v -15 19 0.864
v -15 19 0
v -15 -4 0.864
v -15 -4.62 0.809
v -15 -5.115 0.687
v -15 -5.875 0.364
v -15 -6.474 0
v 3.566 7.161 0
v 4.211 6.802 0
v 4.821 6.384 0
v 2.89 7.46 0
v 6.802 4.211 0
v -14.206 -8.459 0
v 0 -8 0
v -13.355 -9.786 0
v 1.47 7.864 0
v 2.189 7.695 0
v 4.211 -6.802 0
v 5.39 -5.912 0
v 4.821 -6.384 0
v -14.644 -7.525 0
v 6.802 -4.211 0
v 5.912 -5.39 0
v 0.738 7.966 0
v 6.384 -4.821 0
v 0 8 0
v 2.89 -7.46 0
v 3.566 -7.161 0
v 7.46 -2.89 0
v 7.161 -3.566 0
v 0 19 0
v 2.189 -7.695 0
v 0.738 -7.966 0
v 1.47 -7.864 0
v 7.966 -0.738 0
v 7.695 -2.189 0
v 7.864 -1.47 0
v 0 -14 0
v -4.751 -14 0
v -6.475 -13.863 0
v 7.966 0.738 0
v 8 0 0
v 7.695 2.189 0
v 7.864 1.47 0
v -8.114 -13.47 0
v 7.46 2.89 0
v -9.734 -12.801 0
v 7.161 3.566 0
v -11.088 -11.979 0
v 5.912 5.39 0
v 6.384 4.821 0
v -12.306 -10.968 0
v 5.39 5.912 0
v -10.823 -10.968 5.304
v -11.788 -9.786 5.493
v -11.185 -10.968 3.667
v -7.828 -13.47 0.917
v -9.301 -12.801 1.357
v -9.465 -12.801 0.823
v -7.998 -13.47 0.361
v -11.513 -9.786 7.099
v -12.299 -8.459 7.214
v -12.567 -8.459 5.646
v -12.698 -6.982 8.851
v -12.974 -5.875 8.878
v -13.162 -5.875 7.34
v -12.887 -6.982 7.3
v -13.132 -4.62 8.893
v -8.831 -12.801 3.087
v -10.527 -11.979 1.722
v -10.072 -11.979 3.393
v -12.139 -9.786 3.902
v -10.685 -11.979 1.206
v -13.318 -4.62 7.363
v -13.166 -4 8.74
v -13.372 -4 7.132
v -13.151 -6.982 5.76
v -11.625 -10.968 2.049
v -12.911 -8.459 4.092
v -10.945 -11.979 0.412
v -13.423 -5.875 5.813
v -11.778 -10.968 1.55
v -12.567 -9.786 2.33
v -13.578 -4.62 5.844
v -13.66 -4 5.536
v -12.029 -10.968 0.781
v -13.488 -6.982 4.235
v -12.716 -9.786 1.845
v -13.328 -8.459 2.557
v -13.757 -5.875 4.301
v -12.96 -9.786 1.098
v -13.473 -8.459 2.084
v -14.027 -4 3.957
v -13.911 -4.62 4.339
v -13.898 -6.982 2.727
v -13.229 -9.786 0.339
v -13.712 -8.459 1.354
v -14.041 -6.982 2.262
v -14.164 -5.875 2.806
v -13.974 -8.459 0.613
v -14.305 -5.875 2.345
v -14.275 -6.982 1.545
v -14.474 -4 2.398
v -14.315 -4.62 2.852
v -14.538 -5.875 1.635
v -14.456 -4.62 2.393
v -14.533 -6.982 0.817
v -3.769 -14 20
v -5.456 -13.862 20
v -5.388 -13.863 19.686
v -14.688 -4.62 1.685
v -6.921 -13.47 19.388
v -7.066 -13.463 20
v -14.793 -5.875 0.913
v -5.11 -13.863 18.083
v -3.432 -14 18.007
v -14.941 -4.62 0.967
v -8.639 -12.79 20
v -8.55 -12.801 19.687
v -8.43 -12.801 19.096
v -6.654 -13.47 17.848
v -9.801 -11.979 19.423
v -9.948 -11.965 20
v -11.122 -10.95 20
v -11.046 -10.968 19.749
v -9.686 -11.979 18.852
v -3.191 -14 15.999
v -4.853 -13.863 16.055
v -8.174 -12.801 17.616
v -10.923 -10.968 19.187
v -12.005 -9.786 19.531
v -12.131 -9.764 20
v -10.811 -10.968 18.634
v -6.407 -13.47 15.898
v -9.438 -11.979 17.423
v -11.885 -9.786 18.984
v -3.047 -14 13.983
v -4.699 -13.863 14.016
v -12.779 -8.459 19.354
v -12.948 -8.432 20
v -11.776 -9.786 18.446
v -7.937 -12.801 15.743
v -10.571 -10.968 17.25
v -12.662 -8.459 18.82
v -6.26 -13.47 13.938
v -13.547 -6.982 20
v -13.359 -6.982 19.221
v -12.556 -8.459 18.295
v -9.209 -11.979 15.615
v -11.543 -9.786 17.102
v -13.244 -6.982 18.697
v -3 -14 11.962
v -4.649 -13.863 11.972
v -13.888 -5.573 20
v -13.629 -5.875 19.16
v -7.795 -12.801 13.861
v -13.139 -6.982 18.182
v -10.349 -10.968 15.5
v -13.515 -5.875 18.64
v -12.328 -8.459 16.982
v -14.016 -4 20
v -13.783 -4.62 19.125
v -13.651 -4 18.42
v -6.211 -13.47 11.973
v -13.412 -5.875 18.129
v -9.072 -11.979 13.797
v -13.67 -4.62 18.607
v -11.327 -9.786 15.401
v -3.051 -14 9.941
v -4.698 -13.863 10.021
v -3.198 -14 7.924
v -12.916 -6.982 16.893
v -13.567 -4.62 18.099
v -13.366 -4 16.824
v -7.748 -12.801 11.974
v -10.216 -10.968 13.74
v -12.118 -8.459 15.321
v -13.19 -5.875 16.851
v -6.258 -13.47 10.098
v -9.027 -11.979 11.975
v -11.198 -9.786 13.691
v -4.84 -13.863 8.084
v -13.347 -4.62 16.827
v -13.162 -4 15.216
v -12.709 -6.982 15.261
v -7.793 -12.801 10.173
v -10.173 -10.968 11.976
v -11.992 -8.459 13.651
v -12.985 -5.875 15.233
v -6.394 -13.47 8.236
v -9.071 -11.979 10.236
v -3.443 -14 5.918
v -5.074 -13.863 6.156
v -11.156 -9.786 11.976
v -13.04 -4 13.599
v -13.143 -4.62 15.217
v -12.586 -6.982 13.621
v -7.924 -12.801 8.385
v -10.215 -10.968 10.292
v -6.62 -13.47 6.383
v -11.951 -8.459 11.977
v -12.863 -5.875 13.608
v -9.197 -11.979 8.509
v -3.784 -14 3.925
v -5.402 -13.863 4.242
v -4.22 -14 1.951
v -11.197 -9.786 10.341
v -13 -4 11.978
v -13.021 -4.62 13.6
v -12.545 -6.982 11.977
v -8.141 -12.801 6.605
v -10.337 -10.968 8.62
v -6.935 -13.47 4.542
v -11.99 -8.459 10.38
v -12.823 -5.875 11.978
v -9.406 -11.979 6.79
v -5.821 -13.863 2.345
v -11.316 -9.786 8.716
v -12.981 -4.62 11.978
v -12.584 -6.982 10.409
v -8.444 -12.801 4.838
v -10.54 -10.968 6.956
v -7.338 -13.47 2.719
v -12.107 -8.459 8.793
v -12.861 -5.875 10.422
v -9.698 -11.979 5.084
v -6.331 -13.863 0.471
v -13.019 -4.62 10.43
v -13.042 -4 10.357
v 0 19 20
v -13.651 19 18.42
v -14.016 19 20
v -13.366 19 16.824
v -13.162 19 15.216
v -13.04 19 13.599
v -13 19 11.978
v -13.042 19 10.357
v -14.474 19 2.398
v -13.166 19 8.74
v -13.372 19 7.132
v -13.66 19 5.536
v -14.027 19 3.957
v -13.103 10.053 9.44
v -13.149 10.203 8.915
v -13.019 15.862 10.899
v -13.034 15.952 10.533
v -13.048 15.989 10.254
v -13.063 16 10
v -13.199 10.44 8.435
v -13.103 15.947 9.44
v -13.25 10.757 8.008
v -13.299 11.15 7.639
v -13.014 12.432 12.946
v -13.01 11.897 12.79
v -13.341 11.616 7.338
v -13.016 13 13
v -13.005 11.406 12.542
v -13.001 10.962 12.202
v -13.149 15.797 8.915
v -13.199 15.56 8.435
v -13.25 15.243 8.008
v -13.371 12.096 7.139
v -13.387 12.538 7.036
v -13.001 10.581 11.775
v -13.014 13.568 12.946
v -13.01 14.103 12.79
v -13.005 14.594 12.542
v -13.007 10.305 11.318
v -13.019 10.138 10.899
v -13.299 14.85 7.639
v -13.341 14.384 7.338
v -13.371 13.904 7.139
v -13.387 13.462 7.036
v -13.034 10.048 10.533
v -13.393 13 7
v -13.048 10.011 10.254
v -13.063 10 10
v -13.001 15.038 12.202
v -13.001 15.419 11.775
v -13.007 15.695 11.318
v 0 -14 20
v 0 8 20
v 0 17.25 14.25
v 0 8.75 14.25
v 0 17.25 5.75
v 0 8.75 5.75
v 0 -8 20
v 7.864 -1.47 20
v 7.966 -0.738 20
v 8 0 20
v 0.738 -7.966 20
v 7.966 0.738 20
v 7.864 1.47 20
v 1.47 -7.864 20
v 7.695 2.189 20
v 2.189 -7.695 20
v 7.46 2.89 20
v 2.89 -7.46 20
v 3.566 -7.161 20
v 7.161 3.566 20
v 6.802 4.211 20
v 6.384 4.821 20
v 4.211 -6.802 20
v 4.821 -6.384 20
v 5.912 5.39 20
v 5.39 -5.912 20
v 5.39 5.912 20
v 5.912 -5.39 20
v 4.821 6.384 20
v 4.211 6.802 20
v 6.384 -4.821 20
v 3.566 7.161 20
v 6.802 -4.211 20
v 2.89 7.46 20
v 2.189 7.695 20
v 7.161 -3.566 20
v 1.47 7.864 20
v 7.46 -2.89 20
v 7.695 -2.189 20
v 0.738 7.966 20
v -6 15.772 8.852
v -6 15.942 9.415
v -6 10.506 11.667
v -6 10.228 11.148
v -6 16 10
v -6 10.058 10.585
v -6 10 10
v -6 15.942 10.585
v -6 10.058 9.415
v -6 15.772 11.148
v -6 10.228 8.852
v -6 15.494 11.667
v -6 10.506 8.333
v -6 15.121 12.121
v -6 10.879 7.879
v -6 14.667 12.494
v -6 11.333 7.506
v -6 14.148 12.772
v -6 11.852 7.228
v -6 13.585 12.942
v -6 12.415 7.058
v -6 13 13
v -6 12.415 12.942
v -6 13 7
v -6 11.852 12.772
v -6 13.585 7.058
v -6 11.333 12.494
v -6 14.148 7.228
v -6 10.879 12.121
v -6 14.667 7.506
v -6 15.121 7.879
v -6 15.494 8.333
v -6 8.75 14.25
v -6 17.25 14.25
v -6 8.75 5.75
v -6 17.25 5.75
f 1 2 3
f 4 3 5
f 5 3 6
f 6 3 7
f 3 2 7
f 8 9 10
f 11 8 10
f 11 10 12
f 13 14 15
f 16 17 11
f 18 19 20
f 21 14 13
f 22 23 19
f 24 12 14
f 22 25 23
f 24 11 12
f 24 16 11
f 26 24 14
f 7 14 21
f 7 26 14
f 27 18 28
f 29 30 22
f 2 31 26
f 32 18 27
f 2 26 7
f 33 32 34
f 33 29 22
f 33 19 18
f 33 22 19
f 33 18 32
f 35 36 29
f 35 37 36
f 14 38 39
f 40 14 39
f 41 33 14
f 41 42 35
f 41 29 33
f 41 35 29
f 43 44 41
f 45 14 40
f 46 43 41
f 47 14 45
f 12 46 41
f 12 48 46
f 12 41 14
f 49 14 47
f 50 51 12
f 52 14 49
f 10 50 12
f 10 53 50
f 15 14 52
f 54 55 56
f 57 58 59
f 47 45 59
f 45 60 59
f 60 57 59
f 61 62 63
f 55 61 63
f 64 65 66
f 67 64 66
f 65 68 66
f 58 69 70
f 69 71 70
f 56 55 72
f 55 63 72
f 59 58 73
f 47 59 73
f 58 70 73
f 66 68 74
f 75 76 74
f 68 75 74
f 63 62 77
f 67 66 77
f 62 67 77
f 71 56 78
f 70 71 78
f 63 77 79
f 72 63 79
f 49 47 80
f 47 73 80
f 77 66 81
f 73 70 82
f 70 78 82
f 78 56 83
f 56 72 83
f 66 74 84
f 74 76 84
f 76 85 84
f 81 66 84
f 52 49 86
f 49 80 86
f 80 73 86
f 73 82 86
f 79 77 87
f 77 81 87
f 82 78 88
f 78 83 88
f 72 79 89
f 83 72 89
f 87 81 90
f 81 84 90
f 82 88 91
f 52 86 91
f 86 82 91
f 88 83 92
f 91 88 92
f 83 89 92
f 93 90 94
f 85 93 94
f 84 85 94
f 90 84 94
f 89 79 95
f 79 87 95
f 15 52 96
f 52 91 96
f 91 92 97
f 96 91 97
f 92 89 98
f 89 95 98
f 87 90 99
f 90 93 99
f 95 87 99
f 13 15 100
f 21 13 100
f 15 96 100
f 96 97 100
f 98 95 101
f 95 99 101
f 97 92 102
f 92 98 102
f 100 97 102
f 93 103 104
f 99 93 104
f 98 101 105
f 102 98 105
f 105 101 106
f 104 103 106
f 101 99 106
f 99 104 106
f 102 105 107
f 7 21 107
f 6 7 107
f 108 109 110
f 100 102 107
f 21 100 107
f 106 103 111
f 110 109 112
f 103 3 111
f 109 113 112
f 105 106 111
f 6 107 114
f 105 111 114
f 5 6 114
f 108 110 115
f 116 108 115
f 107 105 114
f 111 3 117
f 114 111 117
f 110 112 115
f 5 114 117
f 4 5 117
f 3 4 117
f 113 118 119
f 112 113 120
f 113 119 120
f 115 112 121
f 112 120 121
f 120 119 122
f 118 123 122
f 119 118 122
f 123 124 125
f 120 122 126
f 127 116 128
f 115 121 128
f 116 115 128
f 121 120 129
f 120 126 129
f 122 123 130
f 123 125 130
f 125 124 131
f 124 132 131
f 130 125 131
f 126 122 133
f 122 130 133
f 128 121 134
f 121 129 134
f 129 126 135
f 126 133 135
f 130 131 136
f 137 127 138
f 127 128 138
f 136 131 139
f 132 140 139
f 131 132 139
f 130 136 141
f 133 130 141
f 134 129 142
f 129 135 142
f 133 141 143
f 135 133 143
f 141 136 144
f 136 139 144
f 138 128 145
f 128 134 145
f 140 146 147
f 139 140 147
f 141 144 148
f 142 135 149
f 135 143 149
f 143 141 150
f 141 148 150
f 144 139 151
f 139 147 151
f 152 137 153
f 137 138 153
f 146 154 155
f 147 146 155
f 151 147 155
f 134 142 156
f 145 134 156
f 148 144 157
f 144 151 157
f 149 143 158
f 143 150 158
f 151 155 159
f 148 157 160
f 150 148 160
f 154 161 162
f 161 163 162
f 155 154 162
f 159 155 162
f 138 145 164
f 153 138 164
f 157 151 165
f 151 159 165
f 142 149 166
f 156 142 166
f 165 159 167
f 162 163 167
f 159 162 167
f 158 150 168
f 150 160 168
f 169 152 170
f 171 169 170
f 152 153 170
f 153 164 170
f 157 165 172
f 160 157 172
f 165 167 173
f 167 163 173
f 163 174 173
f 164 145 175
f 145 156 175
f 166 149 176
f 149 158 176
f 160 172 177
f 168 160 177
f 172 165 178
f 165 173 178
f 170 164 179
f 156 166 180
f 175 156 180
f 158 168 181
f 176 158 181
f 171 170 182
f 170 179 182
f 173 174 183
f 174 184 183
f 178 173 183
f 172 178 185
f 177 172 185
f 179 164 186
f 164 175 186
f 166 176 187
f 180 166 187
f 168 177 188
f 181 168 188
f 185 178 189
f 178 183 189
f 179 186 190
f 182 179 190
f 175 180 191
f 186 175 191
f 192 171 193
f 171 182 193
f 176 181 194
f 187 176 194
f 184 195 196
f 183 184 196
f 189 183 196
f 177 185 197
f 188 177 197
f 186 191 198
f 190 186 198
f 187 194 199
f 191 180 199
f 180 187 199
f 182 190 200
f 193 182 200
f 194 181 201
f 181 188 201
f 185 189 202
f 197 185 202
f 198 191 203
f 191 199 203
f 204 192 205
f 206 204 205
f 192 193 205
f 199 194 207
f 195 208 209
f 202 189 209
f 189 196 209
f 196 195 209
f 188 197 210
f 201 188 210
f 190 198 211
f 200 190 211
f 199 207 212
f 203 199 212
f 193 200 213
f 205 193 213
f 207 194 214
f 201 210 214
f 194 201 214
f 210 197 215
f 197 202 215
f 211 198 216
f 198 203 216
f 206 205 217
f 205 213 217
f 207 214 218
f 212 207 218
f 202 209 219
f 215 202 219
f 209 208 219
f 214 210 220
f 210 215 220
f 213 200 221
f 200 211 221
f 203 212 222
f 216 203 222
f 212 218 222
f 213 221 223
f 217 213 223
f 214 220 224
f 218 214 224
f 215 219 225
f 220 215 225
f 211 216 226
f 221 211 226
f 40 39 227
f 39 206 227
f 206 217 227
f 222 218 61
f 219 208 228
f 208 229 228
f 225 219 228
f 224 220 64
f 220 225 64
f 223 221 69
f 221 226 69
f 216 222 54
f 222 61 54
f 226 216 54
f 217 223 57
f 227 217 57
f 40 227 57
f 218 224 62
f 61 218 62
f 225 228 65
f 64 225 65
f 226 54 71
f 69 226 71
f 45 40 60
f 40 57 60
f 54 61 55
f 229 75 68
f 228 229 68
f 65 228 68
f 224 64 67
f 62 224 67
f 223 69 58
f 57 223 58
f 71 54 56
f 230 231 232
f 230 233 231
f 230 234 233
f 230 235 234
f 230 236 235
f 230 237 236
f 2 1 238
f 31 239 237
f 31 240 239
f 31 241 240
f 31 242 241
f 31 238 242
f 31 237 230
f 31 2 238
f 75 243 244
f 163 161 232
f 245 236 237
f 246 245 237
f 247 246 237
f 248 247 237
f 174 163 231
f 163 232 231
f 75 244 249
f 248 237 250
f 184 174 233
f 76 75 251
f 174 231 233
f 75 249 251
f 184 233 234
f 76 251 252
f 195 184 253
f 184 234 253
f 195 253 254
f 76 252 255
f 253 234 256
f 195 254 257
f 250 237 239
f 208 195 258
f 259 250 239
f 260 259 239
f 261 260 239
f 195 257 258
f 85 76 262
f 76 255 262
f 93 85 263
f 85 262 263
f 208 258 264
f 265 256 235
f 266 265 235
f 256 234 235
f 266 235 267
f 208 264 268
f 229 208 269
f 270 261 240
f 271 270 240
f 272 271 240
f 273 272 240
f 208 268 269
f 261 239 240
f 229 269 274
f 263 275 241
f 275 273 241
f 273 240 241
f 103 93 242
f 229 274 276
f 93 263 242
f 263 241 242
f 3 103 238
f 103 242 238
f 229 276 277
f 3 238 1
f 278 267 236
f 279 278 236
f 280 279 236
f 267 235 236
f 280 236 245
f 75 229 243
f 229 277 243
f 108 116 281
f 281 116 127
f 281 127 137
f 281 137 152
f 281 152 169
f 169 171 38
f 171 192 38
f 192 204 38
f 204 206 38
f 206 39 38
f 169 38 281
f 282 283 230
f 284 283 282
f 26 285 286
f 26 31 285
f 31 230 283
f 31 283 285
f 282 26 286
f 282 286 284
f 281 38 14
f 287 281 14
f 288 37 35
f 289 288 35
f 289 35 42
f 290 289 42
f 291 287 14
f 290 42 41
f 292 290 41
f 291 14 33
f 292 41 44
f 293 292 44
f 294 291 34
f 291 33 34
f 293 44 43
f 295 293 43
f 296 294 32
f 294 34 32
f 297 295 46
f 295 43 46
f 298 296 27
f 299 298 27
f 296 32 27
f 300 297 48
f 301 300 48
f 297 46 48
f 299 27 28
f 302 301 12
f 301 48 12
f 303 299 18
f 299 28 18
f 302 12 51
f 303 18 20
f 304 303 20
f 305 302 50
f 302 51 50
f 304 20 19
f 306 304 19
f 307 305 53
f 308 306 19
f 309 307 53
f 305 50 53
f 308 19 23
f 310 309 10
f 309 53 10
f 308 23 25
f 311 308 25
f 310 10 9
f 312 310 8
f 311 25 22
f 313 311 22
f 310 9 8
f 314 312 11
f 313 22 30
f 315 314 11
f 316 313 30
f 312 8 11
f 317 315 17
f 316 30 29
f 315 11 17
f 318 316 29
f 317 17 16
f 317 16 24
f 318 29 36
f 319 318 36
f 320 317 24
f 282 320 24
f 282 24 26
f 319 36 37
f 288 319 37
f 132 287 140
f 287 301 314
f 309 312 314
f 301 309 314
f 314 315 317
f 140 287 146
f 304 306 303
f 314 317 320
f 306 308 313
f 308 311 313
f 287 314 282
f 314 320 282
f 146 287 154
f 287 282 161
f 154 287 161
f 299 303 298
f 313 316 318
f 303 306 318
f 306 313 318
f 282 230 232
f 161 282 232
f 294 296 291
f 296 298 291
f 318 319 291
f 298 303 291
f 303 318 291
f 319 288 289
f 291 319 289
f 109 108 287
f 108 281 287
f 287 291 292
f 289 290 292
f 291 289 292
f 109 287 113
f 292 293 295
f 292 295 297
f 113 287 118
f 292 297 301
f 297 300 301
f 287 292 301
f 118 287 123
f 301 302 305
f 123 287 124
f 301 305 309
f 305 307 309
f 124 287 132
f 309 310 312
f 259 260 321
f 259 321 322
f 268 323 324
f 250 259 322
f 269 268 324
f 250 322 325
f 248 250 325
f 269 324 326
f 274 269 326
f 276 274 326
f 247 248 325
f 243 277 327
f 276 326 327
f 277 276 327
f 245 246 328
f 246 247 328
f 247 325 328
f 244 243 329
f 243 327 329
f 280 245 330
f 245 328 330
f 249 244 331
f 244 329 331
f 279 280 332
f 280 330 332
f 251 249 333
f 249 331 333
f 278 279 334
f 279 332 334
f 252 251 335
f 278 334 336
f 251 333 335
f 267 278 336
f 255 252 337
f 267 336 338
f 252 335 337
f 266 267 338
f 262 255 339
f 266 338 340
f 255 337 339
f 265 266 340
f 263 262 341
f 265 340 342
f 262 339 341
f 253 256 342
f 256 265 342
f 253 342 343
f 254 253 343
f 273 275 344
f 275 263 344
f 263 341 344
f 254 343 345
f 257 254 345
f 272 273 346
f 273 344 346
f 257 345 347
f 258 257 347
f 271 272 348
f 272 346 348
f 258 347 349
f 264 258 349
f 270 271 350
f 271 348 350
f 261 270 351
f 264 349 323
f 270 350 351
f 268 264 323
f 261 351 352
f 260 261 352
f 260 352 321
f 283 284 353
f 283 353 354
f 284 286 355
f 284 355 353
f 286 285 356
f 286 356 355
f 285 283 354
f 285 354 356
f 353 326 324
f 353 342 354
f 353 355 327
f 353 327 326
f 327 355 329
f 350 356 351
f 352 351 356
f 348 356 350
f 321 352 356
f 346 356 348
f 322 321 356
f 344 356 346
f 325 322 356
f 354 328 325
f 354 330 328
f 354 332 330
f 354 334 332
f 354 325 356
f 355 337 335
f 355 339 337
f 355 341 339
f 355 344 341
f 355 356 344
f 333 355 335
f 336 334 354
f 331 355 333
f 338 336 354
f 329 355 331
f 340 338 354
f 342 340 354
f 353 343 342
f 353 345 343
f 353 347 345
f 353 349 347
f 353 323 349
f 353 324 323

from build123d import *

# Parameters (mm, degrees)
PAD_DEPTH       = 20
POCKET_DEPTH    = 33.001
SKETCH002_W     = 8.5
SKETCH002_H     = 8.5
POCKET001_DEPTH = 6
SKETCH003_R     = 3
POCKET002_DEPTH = 15.001
FILLET_R        = 10


with BuildPart() as part:
    # Sketch → Pad (new body)
    with BuildSketch(Plane.XY):
        with BuildLine():
            Line((-15, -14), (0, -14))
            Line((0, -14), (0, -8))
            ThreePointArc((0, -8), (8, 0), (0, 8))
            Line((0, 19), (0, 8))
            Line((-15, 19), (0, 19))
            Line((-15, 19), (-15, -14))
        make_face()
    extrude(amount=PAD_DEPTH)

    # Sketch001 → Pocket (cut, through all)
    with BuildSketch(Plane(origin=(0, 19, 0), x_dir=(-1, 0, 0), z_dir=(0, 1, 0))):
        with BuildLine():
            Line((19.016133, 20), (19.016133, 0))
            Line((19.016133, 0), (15.335206, 0))
            ThreePointArc((14.016133, 20), (13.069372, 9.894059), (15.335206, 0))
            Line((19.016133, 20), (14.016133, 20))
        make_face()
    extrude(amount=-POCKET_DEPTH, mode=Mode.SUBTRACT)

    # Sketch002 → Pocket001 (cut)
    with BuildSketch(Plane.YZ):
        with Locations((13, 10)):
            Rectangle(SKETCH002_W, SKETCH002_H)
    extrude(amount=-POCKET001_DEPTH, mode=Mode.SUBTRACT)

    # Sketch003 → Pocket002 (cut, through all)
    with BuildSketch(Plane.YZ):
        with Locations((13, 10)):
            Circle(SKETCH003_R)
    extrude(amount=-POCKET002_DEPTH, mode=Mode.SUBTRACT)

    # Fillet
    fillet_edges = [part.edges().sort_by_distance(p)[0] for p in [
        (-13.042214, -14, 10.356868),
    ]]
    fillet(fillet_edges, radius=FILLET_R)


solid = part.part
